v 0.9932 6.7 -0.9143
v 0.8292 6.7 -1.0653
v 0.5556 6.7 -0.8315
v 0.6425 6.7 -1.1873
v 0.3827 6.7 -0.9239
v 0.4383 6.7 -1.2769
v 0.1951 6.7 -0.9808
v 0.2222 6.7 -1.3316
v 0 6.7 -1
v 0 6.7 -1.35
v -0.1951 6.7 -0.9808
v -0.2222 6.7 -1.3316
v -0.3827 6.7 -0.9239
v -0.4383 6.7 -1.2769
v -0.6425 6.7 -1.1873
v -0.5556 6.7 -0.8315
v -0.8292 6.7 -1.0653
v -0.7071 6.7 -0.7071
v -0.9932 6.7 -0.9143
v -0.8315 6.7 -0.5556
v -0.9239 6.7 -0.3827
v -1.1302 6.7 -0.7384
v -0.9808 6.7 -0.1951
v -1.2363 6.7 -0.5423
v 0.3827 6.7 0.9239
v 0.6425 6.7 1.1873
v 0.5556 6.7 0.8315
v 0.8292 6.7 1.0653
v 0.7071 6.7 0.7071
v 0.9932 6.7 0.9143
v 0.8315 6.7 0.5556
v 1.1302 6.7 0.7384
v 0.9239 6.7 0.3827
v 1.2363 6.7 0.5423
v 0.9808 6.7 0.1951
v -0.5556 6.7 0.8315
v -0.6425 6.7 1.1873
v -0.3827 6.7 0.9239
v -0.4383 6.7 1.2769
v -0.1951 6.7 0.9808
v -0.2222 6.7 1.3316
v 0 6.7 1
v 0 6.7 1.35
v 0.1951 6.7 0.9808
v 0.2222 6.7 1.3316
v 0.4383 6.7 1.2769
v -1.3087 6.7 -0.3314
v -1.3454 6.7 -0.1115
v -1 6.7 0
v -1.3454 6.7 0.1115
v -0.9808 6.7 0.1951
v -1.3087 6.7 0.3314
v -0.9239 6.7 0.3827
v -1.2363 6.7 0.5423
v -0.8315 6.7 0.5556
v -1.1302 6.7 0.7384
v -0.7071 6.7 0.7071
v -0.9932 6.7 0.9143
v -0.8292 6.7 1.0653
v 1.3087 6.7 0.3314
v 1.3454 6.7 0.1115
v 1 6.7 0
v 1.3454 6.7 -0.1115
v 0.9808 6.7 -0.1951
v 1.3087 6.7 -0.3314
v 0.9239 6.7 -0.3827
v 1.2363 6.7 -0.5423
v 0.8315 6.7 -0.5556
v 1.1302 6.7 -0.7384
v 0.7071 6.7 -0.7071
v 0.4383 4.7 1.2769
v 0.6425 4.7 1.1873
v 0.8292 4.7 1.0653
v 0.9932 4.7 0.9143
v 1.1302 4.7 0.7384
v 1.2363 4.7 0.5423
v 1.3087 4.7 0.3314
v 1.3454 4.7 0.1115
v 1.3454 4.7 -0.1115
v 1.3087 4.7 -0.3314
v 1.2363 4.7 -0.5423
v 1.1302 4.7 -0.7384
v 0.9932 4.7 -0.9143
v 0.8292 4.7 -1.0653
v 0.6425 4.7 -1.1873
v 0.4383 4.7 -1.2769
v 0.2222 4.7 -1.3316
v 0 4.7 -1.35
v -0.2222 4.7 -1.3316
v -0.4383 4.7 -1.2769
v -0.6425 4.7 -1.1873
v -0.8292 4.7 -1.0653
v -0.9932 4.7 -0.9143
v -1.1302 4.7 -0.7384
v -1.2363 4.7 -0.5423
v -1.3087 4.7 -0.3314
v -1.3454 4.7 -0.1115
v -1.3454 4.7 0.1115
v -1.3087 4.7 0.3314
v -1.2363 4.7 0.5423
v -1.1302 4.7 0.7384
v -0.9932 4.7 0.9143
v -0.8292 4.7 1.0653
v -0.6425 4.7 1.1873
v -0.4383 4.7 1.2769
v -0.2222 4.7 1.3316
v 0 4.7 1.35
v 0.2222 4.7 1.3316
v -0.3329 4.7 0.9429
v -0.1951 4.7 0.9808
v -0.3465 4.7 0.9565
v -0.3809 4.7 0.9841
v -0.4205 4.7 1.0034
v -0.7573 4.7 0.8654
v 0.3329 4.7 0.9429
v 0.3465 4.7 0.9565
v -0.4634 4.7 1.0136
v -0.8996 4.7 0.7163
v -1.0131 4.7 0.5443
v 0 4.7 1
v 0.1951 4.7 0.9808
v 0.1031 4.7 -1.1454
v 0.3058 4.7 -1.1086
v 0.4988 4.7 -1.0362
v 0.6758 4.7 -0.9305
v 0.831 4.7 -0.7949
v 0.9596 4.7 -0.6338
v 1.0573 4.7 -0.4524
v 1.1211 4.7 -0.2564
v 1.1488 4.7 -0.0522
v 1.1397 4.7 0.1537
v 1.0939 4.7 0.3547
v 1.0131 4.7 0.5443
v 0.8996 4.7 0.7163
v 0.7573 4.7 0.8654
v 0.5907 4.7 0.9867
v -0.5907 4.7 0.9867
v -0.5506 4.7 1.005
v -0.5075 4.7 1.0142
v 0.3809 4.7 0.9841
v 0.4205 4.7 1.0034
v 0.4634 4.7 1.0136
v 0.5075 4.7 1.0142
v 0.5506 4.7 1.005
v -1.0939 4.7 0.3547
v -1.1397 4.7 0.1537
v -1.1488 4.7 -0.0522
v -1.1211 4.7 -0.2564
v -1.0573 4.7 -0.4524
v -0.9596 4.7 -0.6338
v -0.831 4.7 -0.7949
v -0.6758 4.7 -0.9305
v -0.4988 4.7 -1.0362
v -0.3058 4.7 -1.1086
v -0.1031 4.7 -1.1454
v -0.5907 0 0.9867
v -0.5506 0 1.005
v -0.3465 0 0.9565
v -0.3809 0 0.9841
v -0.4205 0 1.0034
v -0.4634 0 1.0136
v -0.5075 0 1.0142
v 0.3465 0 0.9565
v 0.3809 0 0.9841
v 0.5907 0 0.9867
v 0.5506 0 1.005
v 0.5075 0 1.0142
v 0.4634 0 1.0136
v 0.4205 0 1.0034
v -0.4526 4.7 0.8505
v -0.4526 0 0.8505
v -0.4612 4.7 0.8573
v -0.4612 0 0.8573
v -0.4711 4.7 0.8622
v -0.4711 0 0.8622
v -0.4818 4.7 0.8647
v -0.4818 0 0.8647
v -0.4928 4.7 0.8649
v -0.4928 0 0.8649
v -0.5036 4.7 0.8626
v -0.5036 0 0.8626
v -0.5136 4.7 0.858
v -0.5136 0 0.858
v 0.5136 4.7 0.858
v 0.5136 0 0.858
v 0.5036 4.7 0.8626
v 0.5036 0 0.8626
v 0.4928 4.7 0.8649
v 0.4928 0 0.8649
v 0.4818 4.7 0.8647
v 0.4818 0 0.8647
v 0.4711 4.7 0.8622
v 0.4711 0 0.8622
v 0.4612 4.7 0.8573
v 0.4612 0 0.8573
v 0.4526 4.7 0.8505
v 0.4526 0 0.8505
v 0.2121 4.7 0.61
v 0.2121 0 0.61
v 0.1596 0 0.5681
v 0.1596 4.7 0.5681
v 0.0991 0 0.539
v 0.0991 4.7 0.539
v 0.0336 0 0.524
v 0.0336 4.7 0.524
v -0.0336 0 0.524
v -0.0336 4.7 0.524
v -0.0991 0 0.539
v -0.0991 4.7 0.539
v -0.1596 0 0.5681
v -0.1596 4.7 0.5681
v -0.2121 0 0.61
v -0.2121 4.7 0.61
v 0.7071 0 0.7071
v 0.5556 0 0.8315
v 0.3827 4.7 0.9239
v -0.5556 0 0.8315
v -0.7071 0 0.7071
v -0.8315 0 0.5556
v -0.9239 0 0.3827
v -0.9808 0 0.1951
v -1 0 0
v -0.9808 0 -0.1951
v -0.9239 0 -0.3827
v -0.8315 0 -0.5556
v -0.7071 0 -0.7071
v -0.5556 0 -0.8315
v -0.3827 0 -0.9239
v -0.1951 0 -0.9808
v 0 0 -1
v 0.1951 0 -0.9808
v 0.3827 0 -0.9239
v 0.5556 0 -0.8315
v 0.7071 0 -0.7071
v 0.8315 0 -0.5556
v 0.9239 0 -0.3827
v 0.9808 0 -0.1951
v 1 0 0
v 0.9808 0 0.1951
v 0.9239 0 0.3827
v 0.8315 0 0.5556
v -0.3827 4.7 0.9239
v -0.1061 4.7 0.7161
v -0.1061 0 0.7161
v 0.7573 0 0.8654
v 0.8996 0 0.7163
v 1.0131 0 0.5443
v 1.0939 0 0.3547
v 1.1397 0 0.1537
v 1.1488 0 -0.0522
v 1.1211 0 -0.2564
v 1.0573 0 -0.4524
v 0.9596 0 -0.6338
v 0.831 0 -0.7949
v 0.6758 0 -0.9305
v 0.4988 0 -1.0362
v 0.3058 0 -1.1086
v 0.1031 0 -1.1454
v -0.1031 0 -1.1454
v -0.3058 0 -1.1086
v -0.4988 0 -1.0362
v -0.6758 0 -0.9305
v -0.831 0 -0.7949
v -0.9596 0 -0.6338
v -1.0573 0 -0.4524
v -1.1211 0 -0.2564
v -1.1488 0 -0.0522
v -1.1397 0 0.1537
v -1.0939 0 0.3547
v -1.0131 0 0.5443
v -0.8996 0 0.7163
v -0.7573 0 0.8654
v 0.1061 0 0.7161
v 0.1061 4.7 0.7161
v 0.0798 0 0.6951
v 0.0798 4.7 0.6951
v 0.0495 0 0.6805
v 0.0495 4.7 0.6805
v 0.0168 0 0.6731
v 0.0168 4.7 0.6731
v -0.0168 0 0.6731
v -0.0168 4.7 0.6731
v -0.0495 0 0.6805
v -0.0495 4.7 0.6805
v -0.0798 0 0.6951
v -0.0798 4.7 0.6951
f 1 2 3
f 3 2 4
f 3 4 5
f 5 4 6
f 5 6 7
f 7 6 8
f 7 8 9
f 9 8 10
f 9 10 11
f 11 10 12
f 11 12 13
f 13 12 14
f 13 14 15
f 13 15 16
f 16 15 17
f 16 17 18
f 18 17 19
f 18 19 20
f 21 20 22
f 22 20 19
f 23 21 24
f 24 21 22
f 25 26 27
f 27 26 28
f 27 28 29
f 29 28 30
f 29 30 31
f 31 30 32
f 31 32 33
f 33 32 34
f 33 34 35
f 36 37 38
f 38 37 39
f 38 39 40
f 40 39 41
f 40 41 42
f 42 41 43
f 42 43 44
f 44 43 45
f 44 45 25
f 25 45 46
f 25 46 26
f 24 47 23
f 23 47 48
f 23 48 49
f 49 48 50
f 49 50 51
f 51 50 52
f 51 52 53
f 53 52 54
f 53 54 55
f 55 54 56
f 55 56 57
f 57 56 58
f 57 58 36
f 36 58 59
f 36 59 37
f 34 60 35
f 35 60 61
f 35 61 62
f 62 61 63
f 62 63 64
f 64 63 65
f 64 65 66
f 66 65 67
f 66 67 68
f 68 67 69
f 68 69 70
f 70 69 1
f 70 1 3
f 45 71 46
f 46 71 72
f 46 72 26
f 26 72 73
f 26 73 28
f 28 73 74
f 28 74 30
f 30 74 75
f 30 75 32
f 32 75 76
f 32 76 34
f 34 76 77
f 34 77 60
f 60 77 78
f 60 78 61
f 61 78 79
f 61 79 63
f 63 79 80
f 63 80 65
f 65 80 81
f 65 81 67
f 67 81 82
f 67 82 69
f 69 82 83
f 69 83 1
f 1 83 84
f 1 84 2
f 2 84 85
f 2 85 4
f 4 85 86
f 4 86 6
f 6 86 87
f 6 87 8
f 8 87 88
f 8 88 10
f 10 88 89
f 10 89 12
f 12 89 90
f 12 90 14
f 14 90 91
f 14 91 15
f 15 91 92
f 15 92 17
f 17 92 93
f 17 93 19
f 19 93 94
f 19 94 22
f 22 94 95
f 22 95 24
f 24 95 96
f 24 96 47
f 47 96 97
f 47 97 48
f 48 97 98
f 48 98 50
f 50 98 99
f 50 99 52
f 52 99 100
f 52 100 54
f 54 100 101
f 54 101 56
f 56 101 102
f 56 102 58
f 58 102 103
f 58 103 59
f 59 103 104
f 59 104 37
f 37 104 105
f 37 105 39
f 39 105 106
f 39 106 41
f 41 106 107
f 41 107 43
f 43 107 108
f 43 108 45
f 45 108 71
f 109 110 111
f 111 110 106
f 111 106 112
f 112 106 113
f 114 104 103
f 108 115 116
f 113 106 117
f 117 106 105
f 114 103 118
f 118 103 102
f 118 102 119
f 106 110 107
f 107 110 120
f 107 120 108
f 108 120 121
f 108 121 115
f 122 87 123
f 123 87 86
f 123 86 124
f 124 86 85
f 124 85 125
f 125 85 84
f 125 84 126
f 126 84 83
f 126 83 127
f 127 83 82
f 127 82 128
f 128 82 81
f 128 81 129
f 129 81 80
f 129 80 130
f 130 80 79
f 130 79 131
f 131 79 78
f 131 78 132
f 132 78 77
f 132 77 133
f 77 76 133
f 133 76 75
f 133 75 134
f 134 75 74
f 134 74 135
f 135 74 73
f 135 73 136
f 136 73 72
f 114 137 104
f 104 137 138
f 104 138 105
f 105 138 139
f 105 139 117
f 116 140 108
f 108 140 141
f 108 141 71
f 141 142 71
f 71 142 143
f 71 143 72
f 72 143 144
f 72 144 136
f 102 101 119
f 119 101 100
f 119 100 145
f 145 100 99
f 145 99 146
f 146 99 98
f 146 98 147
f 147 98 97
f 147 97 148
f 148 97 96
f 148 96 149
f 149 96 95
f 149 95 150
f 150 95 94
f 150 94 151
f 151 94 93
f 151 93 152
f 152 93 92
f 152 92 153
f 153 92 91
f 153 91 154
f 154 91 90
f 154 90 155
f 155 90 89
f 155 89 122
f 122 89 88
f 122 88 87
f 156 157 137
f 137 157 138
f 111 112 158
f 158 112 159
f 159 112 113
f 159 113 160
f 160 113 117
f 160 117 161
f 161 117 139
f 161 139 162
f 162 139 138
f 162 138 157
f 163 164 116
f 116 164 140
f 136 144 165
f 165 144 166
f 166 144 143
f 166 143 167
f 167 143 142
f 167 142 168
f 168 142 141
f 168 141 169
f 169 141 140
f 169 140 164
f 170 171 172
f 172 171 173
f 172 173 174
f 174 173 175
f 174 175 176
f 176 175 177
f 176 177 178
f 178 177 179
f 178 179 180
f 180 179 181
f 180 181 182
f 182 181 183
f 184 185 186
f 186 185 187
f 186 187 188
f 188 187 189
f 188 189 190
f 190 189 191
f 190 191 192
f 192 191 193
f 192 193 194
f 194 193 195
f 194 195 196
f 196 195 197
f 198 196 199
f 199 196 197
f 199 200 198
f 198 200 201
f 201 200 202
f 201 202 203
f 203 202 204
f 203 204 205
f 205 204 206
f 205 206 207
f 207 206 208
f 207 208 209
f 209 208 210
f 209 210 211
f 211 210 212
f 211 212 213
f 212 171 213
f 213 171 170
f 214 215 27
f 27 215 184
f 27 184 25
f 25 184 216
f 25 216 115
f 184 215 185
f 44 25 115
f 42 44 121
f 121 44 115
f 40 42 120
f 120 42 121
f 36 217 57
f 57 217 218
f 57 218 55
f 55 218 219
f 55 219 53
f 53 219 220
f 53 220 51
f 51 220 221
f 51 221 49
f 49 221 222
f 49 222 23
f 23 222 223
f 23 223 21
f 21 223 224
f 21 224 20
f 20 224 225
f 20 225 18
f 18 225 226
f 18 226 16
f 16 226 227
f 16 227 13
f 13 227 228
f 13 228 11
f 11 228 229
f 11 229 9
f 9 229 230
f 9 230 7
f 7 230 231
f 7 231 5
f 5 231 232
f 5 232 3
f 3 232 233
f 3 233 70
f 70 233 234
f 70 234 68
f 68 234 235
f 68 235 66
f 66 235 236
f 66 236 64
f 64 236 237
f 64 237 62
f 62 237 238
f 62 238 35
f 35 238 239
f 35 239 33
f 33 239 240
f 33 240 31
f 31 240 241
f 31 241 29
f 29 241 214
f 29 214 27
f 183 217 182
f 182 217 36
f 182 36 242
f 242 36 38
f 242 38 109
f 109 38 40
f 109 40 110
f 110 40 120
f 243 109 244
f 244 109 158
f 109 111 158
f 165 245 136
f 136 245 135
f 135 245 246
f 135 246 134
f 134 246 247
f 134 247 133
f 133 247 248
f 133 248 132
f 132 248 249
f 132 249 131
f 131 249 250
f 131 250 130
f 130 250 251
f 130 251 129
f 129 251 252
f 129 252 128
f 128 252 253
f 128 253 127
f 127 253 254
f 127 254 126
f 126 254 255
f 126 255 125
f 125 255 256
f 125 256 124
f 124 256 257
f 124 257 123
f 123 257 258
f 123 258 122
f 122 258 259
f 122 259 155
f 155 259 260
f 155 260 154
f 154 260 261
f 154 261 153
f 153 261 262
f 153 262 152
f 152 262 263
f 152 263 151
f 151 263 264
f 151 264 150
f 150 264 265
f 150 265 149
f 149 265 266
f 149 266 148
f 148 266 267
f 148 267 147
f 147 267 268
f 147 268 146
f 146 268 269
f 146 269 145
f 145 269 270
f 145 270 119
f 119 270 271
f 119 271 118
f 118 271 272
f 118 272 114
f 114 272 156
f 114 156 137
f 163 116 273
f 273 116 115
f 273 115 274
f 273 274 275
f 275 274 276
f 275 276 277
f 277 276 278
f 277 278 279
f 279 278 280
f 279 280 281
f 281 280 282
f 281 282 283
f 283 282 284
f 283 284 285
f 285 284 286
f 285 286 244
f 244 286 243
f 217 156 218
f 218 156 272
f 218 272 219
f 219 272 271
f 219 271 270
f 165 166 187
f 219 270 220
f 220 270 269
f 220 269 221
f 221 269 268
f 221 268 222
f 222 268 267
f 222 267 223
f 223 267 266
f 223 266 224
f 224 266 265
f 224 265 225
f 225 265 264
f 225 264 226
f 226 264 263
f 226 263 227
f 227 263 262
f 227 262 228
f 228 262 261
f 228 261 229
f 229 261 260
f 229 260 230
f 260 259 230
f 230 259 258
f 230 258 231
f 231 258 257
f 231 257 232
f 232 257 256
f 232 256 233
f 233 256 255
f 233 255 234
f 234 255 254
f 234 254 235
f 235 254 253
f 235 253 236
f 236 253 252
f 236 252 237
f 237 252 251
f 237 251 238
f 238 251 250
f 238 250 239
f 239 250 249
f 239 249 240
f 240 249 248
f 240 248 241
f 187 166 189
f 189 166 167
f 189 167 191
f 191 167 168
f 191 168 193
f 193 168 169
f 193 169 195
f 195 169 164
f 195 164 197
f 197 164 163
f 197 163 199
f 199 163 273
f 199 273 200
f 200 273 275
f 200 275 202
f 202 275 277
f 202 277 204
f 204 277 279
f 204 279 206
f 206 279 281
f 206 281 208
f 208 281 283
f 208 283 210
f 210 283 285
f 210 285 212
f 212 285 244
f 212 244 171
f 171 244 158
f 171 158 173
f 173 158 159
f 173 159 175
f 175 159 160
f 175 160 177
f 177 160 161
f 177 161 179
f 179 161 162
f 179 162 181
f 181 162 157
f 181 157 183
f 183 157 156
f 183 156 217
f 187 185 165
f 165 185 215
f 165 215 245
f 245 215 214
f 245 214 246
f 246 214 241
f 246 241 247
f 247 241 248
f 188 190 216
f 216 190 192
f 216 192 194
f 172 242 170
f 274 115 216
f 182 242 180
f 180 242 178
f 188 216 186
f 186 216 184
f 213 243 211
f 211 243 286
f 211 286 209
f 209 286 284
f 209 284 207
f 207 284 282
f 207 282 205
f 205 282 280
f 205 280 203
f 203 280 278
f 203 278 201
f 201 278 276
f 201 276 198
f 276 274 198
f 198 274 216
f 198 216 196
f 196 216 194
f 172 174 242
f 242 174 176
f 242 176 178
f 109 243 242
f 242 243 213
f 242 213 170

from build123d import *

# Parameters (mm, degrees)
BOSS_EXTRUDE1_DEPTH = 4.7
FILLET1_R           = 0.05
FILLET2_R           = 0.2
SKETCH2_R           = 1.35
SKETCH2_R_2         = 1
BOSS_EXTRUDE2_DEPTH = 2


with BuildPart() as part:
    # Sketch1 → Boss-Extrude1 (new body)
    with BuildSketch(Plane(origin=(0, 0, 0), x_dir=(1, 0, 0), z_dir=(0, 1, 0))):
        with BuildLine():
            Line((-0.448807004, -1.058807004), (-0.106066017, -0.716066017))
            ThreePointArc((-0.106066017, -0.716066017), (0, -0.672132034), (0.106066017, -0.716066017))
            Line((0.106066017, -0.716066017), (0.448807004, -1.058807004))
            ThreePointArc((0.448807004, -1.058807004), (0, 1.15), (-0.448807004, -1.058807004))
        make_face()
        with BuildLine():
            Line((-0.479612457, -0.877480422), (-0.212132034, -0.61))
            ThreePointArc((-0.212132034, -0.61), (0, -0.522132034), (0.212132034, -0.61))
            Line((0.212132034, -0.61), (0.479612457, -0.877480422))
            ThreePointArc((0.479612457, -0.877480422), (0, 1), (-0.479612457, -0.877480422))
        make_face(mode=Mode.SUBTRACT)
    extrude(amount=BOSS_EXTRUDE1_DEPTH)

    # Fillet1
    fillet1_edges = [part.edges().sort_by_distance(p)[0] for p in [
        (0.479612457, 2.35, 0.877480422),
        (-0.479612457, 2.35, 0.877480422),
    ]]
    fillet(fillet1_edges, radius=FILLET1_R)

    # Fillet2
    fillet2_edges = [part.edges().sort_by_distance(p)[0] for p in [
        (-0.448807004, 2.35, 1.058807004),
        (0.448807004, 2.35, 1.058807004),
    ]]
    fillet(fillet2_edges, radius=FILLET2_R)

    # Sketch2 → Boss-Extrude2 (add)
    with BuildSketch(Plane(origin=(0, 4.7, 0), x_dir=(1, 0, 0), z_dir=(0, 1, 0))):
        Circle(SKETCH2_R)
        Circle(SKETCH2_R_2, mode=Mode.SUBTRACT)
    extrude(amount=BOSS_EXTRUDE2_DEPTH)


solid = part.part
